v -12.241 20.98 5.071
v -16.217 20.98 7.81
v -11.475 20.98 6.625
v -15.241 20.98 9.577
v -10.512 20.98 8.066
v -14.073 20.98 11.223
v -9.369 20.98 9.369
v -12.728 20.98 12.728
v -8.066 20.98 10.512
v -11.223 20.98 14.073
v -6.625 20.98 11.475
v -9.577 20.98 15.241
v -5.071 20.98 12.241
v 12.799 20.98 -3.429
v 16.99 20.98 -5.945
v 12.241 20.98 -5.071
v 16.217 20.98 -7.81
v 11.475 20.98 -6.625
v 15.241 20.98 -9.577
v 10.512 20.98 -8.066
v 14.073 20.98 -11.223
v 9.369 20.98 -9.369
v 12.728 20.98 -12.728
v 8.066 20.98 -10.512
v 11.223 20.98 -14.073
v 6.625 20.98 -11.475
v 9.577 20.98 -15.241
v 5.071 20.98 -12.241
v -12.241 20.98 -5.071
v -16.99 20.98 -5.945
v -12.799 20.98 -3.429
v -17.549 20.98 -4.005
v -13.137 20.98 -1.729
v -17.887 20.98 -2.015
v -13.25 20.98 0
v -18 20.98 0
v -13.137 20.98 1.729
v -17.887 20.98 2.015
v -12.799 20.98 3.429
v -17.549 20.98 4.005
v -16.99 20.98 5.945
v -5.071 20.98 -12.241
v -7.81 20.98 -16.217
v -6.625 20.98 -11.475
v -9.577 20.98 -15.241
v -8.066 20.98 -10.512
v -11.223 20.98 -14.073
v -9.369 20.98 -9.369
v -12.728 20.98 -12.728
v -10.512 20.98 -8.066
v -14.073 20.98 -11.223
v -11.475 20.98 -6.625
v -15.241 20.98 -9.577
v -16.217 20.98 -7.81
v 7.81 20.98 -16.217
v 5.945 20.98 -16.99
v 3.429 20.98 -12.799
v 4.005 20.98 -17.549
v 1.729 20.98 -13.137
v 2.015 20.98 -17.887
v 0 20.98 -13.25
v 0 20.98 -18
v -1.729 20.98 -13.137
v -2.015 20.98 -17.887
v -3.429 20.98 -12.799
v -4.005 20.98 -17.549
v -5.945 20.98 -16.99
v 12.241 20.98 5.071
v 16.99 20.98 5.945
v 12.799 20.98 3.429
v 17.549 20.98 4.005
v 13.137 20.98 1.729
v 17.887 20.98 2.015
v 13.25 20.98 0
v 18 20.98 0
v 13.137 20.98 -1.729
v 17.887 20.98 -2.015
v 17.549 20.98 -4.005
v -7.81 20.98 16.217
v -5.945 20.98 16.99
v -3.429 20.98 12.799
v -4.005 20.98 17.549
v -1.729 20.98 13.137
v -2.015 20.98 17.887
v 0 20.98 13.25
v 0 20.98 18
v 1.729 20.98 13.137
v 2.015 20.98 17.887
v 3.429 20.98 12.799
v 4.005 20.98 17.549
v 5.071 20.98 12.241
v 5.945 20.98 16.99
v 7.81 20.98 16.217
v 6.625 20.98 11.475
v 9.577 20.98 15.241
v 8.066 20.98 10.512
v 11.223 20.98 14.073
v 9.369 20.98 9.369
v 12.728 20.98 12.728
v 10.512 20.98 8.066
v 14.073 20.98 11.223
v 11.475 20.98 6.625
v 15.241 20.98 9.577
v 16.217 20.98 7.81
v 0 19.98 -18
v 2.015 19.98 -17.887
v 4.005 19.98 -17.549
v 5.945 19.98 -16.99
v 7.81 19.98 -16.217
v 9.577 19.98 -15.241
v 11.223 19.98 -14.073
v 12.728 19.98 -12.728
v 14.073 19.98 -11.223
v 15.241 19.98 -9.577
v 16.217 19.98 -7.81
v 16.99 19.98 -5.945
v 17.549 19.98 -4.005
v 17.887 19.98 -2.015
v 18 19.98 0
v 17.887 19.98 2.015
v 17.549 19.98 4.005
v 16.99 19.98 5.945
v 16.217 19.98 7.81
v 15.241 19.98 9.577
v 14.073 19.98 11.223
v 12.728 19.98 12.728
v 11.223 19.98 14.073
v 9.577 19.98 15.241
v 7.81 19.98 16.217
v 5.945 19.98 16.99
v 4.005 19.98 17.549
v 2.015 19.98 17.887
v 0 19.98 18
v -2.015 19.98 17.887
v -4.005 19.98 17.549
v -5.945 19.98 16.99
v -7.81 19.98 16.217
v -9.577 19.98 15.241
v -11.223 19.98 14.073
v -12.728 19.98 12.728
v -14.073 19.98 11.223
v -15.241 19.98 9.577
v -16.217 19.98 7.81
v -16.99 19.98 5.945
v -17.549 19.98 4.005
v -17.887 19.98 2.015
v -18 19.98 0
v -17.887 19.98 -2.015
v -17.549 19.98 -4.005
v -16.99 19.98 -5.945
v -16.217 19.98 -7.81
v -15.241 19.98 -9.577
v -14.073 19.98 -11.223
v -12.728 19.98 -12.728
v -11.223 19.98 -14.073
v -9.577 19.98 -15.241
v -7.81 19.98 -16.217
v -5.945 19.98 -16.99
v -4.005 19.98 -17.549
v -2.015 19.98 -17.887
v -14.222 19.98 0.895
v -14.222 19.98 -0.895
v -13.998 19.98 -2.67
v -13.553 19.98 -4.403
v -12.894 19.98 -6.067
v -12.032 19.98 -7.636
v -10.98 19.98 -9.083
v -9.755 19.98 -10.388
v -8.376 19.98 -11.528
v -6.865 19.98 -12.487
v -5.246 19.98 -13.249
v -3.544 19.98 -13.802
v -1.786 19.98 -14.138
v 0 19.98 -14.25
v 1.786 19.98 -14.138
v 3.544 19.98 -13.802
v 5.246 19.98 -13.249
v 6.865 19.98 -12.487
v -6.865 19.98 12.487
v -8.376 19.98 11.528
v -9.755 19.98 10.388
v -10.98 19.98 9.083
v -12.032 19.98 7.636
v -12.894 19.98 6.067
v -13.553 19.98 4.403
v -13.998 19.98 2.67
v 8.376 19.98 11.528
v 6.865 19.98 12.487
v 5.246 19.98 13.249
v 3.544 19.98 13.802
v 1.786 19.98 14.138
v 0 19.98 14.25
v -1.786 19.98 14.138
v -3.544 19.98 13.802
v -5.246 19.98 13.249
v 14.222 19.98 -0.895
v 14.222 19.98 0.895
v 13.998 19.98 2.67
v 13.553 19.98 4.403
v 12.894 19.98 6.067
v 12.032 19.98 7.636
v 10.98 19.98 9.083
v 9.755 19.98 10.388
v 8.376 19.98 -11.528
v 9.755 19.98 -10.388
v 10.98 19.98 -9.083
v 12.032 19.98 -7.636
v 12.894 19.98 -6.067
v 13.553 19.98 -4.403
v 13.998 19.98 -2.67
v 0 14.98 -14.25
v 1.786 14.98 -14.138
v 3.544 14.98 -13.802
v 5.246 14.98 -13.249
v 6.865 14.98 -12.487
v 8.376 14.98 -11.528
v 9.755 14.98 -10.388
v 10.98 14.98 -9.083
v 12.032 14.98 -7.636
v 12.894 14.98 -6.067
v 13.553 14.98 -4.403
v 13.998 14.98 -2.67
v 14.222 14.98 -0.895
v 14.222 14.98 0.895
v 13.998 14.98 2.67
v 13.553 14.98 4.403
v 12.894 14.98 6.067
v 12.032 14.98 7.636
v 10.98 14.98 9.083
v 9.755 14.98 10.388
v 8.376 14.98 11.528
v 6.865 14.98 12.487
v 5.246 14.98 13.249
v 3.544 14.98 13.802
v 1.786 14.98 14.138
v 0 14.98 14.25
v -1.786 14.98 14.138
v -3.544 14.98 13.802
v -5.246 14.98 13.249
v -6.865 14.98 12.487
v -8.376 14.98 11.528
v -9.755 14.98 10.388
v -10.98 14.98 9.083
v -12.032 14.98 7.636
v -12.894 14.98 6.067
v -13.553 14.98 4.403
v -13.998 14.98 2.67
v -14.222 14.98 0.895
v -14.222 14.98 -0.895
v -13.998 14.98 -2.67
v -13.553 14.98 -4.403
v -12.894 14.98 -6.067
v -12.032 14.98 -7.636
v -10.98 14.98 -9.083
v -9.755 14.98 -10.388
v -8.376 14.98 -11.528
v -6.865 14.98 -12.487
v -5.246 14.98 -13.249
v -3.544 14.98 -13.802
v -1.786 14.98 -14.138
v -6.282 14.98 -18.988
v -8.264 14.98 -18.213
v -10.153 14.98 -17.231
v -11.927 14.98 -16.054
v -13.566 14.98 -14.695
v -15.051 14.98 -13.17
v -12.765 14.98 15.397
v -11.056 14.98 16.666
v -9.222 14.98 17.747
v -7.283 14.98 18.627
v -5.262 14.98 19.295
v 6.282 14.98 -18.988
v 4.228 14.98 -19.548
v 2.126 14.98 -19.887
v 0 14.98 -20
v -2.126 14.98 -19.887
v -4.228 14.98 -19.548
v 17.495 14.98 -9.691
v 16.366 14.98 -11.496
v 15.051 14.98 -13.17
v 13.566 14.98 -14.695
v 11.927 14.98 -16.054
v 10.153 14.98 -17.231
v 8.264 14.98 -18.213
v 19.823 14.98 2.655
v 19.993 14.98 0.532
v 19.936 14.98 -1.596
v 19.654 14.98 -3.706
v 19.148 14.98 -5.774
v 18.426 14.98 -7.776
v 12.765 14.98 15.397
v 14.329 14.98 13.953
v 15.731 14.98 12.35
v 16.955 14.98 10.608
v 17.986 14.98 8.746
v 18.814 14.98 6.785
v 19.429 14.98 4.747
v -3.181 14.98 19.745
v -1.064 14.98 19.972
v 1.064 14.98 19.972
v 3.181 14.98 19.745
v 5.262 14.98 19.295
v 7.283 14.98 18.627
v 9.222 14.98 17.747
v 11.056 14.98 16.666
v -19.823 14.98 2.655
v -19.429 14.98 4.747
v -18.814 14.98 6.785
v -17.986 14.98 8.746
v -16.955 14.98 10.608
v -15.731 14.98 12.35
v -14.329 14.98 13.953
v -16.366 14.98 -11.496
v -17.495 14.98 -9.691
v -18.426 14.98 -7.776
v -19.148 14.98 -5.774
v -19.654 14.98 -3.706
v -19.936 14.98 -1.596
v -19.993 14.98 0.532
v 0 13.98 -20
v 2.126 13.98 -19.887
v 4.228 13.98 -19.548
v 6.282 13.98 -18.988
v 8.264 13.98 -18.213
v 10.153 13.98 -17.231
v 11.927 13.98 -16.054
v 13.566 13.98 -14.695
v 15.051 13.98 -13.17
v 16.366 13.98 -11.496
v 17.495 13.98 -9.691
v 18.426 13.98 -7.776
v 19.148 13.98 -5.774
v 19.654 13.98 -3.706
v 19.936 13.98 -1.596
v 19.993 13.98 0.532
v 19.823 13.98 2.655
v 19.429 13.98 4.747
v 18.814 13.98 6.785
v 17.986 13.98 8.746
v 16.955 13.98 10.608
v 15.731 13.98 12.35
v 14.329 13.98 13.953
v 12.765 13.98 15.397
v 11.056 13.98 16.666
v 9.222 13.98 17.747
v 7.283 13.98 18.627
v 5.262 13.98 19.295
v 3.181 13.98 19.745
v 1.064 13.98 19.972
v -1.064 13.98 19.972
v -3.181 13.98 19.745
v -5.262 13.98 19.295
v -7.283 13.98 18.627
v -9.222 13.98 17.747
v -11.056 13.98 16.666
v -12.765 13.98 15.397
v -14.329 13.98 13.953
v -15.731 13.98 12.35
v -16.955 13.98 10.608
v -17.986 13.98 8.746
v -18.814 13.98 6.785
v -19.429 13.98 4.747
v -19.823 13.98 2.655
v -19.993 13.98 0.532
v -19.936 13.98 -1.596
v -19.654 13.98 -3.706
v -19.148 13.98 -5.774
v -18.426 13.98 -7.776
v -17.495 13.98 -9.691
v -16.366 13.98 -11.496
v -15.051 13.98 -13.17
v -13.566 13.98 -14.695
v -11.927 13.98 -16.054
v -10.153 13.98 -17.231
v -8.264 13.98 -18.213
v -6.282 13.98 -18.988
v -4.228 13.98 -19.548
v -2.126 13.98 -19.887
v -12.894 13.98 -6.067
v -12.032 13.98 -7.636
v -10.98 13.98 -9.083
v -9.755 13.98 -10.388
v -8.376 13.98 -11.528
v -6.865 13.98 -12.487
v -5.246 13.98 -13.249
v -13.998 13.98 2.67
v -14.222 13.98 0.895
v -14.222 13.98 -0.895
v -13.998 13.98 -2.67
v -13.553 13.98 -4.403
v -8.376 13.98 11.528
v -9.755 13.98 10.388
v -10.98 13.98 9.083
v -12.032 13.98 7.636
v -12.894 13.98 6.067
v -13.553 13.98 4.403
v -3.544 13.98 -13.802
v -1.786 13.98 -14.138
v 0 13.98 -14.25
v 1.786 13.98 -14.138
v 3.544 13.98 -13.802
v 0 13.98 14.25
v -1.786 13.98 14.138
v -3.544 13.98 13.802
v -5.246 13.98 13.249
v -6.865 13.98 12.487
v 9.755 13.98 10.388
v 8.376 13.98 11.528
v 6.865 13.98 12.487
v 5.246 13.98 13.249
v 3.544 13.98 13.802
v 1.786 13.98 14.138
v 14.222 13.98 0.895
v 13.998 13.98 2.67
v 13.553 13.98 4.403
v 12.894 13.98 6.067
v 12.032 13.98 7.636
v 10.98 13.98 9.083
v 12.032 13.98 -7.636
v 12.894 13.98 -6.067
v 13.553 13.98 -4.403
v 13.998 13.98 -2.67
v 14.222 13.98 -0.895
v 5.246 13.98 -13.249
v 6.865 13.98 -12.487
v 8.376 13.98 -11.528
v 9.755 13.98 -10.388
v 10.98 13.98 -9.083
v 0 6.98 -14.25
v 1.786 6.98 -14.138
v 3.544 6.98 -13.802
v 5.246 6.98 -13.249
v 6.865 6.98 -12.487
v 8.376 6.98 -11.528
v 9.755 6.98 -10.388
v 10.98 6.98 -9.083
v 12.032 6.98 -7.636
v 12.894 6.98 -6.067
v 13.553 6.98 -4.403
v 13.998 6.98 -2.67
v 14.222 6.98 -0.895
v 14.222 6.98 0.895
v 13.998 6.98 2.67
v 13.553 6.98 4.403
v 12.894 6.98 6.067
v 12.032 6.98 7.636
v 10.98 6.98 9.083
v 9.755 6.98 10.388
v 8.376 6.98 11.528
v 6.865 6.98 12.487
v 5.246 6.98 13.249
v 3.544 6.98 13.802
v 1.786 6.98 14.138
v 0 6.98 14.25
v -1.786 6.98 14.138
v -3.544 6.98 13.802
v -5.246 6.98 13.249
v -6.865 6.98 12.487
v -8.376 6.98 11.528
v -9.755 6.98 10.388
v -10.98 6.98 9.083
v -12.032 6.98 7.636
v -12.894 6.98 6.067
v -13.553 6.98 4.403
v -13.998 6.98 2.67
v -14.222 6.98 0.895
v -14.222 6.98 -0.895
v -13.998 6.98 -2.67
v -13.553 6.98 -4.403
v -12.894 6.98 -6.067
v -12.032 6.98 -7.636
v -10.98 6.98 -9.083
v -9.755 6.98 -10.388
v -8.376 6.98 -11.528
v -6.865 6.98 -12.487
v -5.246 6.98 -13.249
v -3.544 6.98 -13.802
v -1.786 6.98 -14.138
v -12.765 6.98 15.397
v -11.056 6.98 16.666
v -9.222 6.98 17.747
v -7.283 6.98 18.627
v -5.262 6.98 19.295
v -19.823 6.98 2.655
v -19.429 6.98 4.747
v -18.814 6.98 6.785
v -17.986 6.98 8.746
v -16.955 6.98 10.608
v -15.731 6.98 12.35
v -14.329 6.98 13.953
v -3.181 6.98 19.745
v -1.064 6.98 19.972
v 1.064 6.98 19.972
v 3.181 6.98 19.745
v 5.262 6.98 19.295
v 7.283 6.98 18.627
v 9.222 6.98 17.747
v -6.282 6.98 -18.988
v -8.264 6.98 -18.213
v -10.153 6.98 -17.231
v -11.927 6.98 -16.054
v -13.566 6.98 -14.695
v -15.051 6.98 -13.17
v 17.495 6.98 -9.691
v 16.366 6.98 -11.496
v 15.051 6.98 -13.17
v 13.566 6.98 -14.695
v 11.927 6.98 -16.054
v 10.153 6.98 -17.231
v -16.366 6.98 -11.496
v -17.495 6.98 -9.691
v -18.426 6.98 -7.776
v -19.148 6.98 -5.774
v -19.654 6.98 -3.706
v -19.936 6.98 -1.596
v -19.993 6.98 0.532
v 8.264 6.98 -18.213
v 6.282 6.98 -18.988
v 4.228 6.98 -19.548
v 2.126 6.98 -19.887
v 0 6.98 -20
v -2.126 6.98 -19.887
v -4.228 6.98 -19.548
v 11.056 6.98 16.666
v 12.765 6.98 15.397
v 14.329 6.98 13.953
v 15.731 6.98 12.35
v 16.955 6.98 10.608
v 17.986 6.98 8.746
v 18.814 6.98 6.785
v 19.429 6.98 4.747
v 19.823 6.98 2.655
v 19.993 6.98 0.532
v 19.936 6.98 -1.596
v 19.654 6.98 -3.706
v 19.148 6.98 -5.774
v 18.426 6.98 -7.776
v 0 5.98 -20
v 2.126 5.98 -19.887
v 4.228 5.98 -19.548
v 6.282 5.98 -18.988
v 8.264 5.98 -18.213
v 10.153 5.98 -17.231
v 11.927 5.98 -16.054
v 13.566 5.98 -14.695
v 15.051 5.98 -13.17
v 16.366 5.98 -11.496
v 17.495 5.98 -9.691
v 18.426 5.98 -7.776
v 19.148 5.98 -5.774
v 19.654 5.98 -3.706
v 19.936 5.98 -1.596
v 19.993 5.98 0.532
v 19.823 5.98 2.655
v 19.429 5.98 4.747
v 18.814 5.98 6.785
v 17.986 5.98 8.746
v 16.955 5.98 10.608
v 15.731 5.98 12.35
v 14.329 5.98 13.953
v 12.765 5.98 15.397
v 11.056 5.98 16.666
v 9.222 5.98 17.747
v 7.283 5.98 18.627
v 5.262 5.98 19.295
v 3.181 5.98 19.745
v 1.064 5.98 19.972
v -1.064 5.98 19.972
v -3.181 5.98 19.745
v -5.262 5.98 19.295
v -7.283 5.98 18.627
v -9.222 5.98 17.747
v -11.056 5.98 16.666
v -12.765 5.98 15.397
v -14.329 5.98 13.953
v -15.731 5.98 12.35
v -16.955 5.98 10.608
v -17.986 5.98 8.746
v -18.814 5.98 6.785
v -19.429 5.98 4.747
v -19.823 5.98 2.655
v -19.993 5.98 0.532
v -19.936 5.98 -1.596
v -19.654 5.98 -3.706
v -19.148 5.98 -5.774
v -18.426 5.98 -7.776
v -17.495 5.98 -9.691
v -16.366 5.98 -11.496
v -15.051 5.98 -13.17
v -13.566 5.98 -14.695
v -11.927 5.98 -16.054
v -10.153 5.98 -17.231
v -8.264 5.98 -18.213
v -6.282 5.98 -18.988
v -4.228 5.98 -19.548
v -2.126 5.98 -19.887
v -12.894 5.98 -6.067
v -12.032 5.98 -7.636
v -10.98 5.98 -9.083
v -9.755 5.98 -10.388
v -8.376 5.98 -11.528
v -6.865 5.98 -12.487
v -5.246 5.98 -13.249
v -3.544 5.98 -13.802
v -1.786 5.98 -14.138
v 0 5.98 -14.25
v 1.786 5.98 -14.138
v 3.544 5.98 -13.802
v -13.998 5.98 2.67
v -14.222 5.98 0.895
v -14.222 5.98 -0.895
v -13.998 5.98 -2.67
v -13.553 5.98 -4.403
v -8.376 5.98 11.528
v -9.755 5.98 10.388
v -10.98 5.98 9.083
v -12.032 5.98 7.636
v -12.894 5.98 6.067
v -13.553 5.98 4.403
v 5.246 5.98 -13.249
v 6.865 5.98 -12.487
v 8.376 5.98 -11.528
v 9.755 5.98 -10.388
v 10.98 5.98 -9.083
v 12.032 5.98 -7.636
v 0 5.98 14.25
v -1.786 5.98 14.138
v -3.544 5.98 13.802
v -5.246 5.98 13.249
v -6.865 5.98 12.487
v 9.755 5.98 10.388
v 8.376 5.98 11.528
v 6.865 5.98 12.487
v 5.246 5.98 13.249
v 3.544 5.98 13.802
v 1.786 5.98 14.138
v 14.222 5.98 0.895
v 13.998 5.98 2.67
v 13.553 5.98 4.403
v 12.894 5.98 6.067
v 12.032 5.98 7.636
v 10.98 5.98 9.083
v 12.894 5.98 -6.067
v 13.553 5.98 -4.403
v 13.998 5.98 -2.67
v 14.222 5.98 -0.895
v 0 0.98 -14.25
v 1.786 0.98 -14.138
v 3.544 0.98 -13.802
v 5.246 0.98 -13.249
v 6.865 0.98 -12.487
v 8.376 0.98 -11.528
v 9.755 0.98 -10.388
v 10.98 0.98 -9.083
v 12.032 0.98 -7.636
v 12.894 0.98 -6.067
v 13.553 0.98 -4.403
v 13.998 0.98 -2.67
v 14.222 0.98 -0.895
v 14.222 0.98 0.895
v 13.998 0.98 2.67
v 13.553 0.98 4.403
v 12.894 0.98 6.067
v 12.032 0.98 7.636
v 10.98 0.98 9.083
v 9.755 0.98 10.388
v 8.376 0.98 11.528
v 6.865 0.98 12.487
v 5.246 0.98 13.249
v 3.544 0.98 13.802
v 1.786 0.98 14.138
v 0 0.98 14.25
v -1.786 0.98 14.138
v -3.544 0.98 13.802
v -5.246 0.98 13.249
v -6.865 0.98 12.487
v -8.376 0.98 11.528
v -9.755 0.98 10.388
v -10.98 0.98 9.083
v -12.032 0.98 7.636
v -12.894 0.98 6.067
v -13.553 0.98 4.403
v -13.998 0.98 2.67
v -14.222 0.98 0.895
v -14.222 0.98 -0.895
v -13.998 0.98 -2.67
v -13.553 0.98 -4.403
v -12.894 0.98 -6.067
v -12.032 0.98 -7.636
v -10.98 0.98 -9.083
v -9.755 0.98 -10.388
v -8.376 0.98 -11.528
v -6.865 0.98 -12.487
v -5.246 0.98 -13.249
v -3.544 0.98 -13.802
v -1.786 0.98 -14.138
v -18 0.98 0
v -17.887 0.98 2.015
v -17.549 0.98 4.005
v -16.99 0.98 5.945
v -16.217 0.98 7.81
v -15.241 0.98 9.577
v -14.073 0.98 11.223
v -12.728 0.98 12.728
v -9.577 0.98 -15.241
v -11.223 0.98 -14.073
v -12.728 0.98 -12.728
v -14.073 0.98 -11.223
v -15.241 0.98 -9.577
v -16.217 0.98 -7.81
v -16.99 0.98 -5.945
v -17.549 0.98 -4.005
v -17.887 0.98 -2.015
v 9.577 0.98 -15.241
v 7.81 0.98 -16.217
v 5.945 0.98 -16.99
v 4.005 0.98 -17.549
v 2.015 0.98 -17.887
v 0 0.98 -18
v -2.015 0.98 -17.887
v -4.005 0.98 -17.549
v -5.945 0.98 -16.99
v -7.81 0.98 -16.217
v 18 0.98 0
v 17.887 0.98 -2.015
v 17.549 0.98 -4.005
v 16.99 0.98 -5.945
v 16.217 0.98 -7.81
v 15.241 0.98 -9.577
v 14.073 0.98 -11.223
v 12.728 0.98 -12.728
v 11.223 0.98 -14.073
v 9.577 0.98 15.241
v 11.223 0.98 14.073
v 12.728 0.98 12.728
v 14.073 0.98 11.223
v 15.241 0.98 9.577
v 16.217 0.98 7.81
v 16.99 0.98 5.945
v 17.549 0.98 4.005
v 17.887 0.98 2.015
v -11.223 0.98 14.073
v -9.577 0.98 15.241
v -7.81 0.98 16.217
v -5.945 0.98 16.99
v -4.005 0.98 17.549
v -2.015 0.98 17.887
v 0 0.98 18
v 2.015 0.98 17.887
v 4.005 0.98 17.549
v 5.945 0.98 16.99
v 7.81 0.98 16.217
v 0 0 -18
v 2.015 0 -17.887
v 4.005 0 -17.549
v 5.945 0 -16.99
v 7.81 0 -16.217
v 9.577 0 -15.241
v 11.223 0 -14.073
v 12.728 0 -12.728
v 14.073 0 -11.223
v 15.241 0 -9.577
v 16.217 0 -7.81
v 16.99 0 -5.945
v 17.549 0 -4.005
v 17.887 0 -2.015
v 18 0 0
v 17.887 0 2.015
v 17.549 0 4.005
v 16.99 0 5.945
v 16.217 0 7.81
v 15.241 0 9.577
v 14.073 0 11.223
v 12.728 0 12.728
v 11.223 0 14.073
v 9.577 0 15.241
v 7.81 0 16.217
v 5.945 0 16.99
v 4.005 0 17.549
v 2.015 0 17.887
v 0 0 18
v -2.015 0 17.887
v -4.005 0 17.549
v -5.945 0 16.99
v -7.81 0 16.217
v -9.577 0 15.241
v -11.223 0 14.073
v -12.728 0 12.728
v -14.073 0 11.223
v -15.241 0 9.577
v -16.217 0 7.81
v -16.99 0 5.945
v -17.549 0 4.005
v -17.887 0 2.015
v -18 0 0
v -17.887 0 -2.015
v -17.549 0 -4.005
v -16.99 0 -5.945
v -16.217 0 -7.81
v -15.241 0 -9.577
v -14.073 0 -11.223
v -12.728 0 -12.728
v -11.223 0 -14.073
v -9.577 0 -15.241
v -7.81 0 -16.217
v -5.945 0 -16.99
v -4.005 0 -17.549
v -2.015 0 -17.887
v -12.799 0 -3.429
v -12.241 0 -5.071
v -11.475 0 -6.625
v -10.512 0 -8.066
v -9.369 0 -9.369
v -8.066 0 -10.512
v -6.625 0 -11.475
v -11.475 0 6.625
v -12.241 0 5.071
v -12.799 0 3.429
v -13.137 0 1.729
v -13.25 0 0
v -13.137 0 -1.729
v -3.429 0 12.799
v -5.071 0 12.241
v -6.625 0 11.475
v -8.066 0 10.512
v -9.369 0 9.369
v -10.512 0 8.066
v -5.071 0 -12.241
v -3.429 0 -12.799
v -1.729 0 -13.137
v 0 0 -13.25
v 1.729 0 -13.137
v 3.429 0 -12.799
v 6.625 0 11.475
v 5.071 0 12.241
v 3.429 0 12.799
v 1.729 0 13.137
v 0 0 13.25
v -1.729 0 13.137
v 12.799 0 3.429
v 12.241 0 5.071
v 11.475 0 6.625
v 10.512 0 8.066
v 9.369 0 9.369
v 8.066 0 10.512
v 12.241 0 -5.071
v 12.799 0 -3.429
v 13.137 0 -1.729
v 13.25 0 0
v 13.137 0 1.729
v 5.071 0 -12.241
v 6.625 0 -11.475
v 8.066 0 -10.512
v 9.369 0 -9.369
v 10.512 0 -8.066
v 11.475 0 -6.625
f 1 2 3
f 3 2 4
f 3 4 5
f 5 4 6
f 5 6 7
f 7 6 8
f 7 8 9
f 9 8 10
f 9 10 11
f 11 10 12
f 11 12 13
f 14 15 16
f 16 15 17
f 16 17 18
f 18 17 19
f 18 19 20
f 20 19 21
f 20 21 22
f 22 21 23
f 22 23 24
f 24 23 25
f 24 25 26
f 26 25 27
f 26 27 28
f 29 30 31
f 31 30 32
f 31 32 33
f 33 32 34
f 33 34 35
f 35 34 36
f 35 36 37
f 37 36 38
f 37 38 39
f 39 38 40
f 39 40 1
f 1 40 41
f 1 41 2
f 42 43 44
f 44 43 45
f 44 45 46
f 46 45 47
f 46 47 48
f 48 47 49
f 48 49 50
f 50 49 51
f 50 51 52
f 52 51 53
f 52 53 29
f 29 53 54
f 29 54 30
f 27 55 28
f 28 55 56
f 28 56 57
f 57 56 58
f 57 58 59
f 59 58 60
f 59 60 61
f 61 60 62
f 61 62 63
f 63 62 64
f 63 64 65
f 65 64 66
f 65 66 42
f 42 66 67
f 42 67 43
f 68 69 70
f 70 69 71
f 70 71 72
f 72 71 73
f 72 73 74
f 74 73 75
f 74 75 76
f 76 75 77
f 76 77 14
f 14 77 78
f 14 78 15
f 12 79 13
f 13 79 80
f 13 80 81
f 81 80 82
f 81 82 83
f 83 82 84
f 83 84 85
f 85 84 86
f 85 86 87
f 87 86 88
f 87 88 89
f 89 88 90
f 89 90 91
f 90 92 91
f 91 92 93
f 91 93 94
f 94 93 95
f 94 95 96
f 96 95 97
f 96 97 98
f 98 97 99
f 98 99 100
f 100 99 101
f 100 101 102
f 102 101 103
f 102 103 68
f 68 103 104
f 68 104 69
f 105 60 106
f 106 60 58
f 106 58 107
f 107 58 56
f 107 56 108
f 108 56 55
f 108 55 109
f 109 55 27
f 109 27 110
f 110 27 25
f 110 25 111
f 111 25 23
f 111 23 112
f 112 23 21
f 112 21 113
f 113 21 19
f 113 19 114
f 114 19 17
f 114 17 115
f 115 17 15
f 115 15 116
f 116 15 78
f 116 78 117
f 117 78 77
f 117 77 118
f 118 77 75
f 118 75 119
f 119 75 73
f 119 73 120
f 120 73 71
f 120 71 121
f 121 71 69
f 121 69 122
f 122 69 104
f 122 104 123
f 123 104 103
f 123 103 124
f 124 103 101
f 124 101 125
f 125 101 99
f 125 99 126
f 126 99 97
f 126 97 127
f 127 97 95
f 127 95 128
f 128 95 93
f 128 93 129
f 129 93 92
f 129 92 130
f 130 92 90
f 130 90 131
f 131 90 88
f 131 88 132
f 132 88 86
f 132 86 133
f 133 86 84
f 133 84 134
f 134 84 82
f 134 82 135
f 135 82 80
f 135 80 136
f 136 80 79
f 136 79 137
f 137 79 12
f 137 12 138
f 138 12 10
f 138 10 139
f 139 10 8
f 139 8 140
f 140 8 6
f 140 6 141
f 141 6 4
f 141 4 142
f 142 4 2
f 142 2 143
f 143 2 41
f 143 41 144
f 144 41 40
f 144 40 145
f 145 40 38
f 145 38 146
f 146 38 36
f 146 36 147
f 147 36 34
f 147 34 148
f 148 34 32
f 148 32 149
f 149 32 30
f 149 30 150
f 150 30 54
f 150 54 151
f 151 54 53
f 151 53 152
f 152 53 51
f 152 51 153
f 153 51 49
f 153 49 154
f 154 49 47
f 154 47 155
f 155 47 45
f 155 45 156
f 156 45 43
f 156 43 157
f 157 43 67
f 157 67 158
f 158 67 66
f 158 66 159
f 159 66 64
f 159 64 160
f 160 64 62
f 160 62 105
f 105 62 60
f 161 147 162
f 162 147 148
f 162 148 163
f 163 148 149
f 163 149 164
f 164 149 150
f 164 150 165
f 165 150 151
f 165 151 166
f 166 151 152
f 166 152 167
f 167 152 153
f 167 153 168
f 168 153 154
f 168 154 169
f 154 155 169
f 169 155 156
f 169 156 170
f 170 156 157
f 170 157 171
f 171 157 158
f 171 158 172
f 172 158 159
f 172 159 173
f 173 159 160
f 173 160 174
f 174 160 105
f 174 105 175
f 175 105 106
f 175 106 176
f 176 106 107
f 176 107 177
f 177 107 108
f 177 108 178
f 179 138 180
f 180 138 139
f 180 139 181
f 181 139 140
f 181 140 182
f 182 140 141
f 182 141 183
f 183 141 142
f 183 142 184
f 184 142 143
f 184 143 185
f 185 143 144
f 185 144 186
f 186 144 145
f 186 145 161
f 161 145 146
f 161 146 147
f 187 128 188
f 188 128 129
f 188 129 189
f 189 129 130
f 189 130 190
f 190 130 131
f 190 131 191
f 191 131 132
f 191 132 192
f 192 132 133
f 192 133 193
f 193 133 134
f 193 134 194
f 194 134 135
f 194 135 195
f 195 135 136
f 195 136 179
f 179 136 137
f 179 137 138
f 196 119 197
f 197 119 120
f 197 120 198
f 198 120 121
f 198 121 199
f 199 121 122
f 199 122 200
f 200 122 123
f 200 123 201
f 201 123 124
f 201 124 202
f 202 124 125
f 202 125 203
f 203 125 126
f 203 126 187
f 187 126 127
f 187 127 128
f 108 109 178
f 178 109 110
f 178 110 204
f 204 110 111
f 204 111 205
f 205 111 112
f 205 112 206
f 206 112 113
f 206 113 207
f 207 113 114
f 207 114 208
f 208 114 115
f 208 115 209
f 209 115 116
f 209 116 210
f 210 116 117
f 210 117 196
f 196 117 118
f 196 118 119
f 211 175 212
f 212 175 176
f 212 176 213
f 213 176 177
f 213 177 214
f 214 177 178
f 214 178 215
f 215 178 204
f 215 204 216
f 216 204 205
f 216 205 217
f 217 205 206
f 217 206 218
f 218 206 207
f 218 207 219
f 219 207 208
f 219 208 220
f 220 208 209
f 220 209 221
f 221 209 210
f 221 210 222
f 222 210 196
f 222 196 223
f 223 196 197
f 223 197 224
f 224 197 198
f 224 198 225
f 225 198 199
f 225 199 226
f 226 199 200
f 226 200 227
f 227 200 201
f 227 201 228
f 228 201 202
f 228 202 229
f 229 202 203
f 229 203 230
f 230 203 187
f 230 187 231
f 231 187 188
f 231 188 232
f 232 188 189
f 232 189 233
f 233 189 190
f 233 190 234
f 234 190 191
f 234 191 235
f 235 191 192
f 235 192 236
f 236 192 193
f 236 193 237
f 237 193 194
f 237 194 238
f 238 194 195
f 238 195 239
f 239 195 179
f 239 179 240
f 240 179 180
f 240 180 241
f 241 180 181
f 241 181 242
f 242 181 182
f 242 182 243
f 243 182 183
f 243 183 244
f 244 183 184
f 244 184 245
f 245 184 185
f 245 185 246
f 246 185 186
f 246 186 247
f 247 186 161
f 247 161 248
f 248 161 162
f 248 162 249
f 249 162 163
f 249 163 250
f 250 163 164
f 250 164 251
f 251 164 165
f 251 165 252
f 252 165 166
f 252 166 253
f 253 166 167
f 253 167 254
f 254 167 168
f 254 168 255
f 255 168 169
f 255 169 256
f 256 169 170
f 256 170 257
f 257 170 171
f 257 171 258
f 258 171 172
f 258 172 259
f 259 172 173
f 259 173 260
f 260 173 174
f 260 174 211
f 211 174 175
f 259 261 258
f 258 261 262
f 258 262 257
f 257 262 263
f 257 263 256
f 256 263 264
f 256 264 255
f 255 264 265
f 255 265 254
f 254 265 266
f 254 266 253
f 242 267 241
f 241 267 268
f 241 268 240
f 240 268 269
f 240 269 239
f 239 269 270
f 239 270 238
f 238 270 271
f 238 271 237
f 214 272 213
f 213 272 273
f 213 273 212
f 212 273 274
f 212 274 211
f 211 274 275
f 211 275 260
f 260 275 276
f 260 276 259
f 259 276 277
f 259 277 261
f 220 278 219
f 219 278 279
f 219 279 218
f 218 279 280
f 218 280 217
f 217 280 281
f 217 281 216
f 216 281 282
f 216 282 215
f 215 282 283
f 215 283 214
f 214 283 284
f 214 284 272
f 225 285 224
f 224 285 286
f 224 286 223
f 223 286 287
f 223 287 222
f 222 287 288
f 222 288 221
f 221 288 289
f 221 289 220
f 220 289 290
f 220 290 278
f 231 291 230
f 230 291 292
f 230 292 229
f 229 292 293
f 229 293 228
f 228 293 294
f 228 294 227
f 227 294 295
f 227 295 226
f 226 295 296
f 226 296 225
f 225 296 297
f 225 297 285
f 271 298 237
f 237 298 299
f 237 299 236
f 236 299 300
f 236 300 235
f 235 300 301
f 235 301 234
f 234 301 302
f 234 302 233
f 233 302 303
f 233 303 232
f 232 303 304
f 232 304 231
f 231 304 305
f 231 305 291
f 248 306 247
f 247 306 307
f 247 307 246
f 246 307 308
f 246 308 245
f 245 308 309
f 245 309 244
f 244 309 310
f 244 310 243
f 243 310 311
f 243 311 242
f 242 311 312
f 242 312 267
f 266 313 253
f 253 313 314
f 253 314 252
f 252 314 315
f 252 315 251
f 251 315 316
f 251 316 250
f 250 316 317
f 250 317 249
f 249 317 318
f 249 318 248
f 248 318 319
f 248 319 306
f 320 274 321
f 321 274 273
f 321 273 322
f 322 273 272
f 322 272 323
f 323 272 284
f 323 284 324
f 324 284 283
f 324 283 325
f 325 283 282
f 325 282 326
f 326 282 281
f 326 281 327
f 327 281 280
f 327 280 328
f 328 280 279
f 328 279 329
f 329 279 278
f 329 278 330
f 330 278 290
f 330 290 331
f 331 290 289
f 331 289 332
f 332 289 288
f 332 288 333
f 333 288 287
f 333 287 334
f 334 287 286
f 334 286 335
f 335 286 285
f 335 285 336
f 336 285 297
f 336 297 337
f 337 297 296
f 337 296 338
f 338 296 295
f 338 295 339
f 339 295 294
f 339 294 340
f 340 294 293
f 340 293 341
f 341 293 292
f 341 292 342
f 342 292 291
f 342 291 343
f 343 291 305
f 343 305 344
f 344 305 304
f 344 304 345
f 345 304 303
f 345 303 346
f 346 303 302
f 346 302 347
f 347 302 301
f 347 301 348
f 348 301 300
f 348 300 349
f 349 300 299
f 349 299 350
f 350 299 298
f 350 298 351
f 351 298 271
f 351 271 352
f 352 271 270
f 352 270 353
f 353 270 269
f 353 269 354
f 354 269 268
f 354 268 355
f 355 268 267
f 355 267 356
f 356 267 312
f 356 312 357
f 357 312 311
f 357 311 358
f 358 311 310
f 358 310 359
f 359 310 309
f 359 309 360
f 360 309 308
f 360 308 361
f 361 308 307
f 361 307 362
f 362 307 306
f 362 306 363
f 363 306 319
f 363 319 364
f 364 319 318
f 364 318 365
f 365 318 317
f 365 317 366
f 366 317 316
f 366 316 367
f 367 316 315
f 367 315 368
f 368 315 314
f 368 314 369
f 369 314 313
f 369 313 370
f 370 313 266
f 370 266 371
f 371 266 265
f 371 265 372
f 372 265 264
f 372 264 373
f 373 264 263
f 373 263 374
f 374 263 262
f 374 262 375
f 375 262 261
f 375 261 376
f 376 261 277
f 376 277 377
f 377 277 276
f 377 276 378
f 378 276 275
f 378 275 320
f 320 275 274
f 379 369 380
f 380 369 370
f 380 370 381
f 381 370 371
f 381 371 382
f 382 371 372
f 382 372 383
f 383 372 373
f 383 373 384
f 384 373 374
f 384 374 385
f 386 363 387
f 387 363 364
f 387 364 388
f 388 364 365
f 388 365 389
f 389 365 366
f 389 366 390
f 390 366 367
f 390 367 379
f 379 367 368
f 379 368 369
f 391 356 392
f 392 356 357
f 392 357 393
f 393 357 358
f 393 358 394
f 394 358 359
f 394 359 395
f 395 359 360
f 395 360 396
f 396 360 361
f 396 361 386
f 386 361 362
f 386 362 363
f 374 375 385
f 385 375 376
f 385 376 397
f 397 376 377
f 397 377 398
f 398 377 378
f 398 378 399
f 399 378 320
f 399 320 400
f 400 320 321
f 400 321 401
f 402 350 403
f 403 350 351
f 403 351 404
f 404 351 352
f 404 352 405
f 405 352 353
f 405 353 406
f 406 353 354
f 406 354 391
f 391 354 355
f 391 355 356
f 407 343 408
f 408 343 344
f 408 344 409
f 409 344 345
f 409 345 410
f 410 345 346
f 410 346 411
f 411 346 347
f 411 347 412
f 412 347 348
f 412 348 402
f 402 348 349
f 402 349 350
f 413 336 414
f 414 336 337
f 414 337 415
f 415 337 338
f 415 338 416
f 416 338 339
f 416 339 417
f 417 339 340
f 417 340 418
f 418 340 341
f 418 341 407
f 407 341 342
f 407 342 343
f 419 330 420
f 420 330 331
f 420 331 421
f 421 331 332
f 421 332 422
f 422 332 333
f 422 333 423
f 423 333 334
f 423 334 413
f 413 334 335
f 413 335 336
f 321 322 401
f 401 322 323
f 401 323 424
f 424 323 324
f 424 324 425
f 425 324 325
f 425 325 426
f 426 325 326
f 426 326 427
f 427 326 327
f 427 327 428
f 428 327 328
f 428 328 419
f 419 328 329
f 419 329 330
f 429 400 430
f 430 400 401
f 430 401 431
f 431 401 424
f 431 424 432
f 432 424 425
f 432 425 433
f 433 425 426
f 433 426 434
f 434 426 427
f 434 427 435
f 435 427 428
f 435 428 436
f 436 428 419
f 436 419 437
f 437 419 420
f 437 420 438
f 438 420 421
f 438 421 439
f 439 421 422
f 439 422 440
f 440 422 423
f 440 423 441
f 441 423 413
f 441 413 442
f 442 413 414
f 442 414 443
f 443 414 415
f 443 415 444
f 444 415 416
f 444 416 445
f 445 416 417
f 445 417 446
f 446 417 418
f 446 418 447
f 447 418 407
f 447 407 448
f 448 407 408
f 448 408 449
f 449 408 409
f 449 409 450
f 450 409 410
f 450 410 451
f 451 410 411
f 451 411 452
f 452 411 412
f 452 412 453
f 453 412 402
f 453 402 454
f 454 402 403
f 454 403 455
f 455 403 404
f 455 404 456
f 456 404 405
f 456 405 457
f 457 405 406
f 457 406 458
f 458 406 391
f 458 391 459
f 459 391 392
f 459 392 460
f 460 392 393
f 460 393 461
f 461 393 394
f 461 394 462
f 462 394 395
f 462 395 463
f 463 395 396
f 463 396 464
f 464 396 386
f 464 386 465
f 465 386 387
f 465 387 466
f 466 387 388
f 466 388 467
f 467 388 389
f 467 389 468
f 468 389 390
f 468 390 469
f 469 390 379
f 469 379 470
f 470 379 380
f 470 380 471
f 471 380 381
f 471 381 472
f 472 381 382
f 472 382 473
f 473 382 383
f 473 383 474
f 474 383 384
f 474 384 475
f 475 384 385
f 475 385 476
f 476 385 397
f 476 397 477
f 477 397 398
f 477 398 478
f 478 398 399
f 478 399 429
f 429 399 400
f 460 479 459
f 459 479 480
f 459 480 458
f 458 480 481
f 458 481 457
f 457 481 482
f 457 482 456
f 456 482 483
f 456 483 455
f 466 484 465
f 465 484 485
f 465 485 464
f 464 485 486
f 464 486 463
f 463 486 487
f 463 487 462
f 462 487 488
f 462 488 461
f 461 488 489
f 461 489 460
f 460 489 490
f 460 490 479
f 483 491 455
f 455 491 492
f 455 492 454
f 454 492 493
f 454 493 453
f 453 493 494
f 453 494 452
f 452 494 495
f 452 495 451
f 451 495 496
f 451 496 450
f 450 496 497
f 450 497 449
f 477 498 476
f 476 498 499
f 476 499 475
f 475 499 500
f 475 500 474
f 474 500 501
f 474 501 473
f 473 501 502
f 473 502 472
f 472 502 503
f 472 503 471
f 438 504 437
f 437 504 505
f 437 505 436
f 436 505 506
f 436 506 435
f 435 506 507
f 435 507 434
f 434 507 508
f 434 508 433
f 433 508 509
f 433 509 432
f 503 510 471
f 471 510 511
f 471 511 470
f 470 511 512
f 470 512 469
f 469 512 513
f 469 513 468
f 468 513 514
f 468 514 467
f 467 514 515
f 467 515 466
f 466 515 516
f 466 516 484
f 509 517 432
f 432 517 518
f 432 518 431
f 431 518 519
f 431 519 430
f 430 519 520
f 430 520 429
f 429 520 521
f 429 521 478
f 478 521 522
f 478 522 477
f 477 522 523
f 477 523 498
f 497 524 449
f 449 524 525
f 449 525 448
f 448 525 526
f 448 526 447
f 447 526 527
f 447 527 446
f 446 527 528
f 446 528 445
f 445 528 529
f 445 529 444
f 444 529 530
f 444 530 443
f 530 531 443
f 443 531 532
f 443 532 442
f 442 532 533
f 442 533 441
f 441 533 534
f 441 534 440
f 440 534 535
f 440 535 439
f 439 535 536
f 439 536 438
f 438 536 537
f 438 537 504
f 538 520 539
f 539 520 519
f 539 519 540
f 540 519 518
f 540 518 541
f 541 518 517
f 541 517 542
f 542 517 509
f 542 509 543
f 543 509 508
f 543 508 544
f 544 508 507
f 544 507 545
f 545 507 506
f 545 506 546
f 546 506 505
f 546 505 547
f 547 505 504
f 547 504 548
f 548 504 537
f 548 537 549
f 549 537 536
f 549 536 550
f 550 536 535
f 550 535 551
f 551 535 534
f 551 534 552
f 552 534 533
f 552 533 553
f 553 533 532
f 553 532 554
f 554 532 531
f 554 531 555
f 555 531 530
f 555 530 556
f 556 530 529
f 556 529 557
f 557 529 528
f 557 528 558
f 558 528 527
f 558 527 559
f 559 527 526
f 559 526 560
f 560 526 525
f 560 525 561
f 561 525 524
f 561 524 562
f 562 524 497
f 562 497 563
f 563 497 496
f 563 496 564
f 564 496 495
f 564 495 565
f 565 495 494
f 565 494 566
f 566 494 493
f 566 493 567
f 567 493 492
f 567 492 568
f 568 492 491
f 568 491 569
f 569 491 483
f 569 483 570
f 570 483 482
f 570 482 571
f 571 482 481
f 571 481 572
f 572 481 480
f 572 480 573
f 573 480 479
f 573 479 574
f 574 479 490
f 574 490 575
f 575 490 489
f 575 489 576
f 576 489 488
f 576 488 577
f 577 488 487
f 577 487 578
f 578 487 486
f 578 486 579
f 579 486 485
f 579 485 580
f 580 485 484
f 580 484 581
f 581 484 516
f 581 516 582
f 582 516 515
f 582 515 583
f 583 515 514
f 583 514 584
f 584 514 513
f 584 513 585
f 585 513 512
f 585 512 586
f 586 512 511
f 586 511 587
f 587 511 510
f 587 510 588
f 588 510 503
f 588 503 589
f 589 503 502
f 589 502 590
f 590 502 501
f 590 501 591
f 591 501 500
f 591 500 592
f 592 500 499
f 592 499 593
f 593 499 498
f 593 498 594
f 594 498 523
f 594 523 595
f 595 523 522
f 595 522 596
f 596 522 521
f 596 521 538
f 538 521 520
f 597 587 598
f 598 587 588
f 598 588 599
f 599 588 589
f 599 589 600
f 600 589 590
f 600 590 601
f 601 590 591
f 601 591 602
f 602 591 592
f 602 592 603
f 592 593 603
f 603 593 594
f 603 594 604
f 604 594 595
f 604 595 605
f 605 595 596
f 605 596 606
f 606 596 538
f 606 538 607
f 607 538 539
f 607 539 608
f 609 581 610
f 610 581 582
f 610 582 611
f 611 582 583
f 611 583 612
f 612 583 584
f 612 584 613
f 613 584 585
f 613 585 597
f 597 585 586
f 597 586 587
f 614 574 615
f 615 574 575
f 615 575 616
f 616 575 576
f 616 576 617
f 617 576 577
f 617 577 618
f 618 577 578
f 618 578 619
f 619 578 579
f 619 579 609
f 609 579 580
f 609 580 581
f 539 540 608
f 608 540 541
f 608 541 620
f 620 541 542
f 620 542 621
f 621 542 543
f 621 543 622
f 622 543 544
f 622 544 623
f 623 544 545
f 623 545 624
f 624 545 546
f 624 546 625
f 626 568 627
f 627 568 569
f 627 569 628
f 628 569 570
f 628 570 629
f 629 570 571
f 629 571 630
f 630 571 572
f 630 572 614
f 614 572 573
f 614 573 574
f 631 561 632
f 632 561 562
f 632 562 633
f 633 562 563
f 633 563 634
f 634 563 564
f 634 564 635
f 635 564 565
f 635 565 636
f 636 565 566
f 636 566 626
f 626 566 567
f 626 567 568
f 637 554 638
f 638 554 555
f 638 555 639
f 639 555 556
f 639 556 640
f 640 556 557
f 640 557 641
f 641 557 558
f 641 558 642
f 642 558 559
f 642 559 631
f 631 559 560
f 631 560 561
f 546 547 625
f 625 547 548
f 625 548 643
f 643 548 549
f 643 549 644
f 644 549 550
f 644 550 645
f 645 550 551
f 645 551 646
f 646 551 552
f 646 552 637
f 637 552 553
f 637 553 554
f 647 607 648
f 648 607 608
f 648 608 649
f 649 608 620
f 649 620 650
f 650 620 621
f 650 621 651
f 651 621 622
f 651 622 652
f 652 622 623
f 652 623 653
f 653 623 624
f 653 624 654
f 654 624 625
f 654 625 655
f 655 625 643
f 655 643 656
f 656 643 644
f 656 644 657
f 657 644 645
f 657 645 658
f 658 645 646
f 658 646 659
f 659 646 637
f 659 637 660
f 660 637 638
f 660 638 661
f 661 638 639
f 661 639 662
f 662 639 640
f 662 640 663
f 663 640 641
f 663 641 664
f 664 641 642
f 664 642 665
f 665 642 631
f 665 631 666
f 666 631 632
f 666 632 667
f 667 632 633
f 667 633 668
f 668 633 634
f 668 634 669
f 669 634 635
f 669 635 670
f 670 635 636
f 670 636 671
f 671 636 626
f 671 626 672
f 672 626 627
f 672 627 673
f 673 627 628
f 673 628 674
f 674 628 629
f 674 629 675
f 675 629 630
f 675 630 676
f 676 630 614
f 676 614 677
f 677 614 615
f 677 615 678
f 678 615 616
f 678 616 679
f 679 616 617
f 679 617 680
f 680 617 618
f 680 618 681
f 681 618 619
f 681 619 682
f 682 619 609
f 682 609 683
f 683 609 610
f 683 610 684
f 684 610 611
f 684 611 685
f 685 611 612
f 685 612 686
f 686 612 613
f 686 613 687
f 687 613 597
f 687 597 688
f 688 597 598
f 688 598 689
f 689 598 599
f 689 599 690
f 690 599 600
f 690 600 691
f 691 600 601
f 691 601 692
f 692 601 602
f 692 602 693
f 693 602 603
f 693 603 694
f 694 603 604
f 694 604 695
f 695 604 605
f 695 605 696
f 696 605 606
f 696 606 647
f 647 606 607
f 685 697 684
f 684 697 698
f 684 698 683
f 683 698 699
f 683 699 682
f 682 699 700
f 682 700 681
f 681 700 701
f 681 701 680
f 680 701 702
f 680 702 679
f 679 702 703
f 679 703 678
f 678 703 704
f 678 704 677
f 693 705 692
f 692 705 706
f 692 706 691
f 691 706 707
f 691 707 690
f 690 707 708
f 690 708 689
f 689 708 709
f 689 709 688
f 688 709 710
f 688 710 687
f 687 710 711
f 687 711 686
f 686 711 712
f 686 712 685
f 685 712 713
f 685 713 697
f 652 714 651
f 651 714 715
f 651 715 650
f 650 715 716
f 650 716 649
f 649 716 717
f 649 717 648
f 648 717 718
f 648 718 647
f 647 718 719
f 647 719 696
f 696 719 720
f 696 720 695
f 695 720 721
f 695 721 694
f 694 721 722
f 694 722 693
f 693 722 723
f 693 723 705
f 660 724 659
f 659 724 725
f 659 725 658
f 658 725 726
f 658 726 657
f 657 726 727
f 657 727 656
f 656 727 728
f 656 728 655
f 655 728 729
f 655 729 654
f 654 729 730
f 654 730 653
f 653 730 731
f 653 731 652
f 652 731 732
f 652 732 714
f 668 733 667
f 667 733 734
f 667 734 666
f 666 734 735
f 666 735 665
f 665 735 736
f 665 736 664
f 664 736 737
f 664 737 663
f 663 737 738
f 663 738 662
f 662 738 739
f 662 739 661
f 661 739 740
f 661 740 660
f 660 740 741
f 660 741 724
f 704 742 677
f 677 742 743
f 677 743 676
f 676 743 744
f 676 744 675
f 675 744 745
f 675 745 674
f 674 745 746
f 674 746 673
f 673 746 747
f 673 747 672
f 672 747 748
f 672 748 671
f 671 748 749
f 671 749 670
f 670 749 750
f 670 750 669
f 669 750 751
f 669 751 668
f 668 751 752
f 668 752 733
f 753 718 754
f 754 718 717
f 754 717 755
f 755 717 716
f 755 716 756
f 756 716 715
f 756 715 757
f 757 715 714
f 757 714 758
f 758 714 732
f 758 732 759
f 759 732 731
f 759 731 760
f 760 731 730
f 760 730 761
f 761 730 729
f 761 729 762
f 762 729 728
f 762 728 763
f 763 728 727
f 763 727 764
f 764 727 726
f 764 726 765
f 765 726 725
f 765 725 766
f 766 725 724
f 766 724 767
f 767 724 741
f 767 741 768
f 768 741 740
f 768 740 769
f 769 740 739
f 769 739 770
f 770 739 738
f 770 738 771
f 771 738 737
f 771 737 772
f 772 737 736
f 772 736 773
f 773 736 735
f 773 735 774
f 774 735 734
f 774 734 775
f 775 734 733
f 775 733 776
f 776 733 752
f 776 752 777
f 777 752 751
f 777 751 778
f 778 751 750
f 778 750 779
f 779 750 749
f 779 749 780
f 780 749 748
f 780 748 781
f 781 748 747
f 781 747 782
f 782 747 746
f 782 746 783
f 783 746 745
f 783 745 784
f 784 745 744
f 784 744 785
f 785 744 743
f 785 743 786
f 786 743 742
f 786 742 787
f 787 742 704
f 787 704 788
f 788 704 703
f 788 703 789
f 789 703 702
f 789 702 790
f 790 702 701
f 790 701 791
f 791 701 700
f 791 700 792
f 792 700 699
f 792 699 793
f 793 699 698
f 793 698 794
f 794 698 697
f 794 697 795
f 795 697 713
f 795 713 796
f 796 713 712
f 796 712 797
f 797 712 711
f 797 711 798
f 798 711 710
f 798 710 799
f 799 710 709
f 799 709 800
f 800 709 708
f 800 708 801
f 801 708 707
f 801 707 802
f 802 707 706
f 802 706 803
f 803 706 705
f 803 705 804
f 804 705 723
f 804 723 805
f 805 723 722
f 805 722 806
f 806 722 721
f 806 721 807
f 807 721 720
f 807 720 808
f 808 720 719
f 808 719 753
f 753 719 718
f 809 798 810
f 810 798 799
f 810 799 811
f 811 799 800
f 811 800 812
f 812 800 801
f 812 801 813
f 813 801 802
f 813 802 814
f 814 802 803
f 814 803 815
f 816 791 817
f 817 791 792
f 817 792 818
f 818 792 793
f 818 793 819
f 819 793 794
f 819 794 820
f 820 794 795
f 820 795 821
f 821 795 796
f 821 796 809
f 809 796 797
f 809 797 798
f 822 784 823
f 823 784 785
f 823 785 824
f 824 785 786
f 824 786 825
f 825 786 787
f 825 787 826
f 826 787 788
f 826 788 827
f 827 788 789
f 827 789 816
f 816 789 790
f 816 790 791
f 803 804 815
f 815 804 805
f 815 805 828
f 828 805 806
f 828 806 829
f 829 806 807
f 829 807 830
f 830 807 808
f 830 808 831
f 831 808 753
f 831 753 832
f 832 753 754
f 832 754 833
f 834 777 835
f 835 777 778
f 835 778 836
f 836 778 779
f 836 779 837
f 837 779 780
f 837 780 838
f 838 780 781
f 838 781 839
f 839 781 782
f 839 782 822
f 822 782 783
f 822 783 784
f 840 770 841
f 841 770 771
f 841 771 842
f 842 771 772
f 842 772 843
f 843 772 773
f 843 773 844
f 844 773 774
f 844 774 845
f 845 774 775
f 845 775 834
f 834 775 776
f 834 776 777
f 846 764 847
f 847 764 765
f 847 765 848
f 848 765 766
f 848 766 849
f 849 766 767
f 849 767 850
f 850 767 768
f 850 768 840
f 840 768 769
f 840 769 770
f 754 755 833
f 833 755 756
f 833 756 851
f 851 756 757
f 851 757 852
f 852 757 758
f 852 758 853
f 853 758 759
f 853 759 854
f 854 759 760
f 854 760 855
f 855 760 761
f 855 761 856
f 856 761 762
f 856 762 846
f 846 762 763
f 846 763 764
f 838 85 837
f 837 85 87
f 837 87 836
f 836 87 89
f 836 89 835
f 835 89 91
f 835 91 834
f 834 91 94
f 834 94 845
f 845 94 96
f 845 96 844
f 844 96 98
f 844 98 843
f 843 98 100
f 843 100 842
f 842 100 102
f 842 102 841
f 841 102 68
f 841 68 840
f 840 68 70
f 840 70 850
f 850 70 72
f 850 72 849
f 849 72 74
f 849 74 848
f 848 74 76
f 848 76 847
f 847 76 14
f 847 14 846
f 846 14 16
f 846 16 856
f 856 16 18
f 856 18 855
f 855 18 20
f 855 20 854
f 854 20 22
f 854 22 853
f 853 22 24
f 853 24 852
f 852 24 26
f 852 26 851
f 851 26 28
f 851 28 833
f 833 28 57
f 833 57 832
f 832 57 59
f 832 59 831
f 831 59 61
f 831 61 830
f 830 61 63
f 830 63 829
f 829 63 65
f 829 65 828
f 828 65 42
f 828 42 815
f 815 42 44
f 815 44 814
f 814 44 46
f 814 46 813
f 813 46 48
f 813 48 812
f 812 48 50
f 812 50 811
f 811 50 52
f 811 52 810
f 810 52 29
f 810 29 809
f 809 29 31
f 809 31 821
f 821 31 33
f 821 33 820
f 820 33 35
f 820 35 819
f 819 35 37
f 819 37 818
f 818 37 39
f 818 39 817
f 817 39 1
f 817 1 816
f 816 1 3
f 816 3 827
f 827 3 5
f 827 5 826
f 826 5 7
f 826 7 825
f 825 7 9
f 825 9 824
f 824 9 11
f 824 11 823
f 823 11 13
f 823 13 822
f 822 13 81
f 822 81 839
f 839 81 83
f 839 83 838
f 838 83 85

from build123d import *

# Parameters (mm, degrees)
SKETCH_2_R          = 13.25
CUT_EXTRUDE_1_DEPTH = 36.215875749


with BuildPart() as part:
    # 草图1 → 旋转1 (revolve)
    with BuildSketch(Plane.XY, mode=Mode.PRIVATE) as revolve_1_sk:
        Polygon((11.881076893, 20.979940533), (18, 20.979940533), (18, 19.979940533), (14.25, 19.979940533), (14.25, 14.979940533), (20, 14.979940533), (20, 13.979940533), (14.25, 13.979940533), (14.25, 6.979940533), (20, 6.979940533), (20, 5.979940533), (14.25, 5.979940533), (14.25, 0.979940533), (18, 0.979940533), (18, 0), (4.648229123, 0), (0, 0), (0, 20.979940533), align=None)
    revolve(revolve_1_sk.sketch.rotate(Axis((0, 0, 0), (0, 1, 0)), 90), axis=Axis((0, 0, 0), (0, 1, 0)))

    # 草图2 → 切除-拉伸1 (cut, through all)
    with BuildSketch(Plane(origin=(0, 20.979940533, 0), x_dir=(1, 0, 0), z_dir=(0, 1, 0))):
        with Locations(Location((0, 0, 0), (0, 0, 270))):
            Circle(SKETCH_2_R)
    extrude(amount=-CUT_EXTRUDE_1_DEPTH, mode=Mode.SUBTRACT)


solid = part.part
